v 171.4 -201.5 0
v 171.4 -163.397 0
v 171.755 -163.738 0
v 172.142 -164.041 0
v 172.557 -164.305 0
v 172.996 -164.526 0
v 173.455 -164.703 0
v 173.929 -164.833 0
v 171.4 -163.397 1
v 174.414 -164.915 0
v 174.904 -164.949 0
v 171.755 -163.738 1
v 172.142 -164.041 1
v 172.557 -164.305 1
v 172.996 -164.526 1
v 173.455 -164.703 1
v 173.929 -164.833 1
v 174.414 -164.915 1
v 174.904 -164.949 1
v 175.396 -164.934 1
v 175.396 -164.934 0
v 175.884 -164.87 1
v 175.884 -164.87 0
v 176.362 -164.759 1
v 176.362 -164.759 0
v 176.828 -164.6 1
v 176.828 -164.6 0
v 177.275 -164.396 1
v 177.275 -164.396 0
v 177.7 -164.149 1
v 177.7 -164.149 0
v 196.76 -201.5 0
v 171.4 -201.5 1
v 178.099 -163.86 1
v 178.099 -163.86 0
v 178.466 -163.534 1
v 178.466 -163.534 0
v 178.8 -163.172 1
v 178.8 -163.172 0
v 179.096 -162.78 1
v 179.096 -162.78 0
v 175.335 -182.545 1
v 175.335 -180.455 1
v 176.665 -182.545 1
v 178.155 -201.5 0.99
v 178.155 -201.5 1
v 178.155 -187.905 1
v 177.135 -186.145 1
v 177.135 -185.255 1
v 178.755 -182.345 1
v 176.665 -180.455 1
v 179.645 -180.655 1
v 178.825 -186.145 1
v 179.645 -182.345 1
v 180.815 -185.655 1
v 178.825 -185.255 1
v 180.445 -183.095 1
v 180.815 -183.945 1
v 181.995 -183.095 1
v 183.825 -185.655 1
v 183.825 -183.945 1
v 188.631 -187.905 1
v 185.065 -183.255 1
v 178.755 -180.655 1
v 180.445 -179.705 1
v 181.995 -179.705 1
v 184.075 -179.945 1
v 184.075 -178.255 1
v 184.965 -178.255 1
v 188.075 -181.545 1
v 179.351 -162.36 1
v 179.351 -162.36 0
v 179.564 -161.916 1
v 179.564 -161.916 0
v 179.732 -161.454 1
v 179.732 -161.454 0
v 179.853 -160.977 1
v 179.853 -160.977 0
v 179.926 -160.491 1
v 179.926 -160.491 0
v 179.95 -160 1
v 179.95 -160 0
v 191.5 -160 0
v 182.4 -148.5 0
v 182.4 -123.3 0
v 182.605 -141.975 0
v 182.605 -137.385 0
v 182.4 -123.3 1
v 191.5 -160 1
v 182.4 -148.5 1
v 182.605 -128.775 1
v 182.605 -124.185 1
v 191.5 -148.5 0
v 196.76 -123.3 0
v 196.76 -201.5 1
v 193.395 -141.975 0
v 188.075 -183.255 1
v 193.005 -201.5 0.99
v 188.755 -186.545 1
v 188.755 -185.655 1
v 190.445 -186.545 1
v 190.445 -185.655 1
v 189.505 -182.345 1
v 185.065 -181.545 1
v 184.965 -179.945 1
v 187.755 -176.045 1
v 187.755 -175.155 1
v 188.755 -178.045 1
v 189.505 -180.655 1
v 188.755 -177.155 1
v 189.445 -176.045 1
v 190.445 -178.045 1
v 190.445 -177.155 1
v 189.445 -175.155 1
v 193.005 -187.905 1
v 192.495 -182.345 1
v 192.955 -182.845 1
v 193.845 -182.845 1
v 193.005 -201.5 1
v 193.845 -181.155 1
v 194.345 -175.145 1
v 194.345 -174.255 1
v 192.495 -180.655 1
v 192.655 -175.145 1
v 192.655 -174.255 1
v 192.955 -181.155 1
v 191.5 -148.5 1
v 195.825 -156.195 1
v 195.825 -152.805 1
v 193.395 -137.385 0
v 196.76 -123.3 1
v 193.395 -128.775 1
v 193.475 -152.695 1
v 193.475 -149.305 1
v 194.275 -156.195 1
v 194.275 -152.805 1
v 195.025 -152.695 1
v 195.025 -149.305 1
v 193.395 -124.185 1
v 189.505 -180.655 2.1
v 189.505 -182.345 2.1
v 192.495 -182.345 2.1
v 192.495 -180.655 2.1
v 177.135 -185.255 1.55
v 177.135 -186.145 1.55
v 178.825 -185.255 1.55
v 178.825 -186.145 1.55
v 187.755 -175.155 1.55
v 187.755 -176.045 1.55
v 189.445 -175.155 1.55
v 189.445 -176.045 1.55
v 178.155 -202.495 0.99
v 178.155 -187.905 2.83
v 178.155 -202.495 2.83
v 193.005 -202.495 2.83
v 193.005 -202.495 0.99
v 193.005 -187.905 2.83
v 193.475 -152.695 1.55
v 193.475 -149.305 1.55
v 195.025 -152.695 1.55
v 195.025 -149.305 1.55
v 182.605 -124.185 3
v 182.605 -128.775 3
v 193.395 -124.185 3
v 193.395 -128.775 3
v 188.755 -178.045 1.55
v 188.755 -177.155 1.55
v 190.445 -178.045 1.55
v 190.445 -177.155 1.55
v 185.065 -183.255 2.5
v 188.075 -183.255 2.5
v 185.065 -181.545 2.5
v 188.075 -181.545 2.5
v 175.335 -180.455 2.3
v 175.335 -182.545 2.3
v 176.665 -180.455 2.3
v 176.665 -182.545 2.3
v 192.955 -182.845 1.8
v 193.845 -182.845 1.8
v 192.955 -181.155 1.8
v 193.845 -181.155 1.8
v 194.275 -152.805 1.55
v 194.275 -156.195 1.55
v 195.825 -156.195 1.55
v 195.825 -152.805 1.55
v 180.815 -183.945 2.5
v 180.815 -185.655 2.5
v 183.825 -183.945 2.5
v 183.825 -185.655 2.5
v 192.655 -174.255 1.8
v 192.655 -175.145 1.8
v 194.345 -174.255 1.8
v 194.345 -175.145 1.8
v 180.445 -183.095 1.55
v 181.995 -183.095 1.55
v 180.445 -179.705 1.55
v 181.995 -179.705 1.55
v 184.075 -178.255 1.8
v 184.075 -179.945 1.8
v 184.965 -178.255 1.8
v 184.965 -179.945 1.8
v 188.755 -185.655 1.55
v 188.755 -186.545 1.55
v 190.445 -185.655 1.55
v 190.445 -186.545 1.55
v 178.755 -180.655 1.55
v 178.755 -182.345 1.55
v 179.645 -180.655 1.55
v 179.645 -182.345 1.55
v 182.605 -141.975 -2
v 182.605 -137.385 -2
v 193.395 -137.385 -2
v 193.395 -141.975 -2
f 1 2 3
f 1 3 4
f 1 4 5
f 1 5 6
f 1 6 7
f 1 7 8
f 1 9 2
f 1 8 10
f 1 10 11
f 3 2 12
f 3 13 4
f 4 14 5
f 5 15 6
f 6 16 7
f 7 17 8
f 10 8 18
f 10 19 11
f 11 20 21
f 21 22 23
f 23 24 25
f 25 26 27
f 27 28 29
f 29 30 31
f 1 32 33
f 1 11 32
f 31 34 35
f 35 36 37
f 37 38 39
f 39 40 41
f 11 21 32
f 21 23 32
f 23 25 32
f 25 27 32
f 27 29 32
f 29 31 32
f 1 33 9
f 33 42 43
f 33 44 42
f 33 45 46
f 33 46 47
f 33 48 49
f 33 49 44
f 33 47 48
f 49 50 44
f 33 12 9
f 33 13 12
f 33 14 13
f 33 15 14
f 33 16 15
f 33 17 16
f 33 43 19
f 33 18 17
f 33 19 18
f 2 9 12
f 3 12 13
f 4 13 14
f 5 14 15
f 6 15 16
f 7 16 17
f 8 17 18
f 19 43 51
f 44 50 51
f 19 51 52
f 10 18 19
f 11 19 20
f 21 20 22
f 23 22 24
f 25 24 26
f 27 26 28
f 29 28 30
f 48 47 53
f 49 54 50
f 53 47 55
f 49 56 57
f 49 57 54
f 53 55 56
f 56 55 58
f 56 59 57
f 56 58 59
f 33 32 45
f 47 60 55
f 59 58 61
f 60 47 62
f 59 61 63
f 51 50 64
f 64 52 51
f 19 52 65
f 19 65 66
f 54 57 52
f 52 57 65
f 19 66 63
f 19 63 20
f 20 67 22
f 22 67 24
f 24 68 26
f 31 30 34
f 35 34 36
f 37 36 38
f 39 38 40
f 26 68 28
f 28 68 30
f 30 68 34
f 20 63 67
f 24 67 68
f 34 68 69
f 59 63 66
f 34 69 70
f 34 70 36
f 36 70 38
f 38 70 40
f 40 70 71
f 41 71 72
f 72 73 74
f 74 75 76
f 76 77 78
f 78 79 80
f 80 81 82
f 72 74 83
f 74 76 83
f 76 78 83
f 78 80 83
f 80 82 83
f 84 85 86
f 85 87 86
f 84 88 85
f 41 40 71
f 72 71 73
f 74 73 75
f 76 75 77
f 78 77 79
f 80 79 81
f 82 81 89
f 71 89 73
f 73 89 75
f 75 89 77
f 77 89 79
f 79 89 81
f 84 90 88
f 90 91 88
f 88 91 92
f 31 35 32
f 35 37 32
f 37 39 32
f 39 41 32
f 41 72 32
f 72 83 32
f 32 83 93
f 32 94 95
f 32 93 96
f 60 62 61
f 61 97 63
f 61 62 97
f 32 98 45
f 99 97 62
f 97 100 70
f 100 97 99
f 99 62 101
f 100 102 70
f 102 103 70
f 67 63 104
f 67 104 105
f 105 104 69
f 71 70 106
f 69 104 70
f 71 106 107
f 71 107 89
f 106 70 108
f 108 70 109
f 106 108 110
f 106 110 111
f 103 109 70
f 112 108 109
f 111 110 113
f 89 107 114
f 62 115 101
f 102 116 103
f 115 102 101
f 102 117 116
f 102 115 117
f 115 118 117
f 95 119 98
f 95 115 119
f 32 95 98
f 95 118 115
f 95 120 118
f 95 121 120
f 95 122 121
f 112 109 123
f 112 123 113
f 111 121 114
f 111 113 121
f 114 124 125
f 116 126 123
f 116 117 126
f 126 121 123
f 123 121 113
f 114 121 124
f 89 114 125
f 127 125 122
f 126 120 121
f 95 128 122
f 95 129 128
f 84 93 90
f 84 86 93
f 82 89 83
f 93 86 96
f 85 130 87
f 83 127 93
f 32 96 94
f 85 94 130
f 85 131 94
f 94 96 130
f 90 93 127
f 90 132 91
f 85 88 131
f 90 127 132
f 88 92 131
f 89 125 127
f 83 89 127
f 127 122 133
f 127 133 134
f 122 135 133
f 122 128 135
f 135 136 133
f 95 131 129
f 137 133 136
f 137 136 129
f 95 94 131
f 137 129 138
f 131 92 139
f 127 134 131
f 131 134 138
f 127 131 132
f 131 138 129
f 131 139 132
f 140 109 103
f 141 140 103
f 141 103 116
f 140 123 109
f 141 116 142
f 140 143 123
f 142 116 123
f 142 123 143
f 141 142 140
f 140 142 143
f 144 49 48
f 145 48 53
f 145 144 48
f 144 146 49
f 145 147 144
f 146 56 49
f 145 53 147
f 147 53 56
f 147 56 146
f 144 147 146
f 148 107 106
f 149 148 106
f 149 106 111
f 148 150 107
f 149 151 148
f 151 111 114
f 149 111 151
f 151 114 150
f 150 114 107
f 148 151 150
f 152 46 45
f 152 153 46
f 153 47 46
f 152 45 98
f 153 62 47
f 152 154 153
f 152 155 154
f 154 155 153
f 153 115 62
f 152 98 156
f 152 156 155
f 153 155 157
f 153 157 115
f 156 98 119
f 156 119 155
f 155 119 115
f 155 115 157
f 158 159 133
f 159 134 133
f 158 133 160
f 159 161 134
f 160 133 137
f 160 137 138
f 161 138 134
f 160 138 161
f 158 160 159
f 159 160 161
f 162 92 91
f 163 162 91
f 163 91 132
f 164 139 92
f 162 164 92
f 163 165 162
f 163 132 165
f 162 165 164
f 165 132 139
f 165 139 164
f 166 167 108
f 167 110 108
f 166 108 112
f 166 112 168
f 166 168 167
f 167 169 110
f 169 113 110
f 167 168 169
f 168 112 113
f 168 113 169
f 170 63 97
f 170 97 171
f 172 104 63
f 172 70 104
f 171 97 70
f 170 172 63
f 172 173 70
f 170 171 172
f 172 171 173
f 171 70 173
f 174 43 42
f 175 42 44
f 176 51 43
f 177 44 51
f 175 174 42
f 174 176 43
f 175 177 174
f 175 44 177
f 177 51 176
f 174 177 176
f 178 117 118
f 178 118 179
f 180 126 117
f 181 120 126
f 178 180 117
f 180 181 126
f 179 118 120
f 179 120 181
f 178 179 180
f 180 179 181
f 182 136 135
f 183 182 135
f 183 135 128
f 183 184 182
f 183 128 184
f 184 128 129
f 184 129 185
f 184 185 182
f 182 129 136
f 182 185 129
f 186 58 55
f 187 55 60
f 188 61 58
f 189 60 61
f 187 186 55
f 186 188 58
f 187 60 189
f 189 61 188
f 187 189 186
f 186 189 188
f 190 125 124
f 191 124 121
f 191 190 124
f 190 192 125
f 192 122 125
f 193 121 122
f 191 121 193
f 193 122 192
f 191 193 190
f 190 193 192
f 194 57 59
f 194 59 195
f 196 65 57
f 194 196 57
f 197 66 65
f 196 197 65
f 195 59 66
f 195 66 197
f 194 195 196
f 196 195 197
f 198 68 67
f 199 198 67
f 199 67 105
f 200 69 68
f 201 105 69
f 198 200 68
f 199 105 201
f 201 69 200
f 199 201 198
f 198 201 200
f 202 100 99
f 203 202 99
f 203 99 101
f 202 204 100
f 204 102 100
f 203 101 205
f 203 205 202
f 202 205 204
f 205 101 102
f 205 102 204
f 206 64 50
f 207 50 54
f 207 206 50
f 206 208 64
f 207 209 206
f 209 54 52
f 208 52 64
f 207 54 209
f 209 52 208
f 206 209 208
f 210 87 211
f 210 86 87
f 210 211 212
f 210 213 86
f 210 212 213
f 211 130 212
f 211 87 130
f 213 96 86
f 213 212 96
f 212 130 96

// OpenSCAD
// generated by make_mockup.py: the short SD board's outline and its parts as blocks
union() {
  linear_extrude(1.0) polygon([[196.76, -201.5], [171.4, -201.5], [171.4, -163.397], [171.755, -163.738], [172.142, -164.041], [172.557, -164.305], [172.996, -164.526], [173.455, -164.703], [173.929, -164.833], [174.414, -164.915], [174.904, -164.949], [175.396, -164.934], [175.884, -164.87], [176.362, -164.759], [176.828, -164.6], [177.275, -164.396], [177.7, -164.149], [178.099, -163.86], [178.466, -163.534], [178.8, -163.172], [179.096, -162.78], [179.351, -162.36], [179.564, -161.916], [179.732, -161.454], [179.853, -160.977], [179.926, -160.491], [179.95, -160.0], [191.5, -160.0], [191.5, -148.5], [182.4, -148.5], [182.4, -123.3], [196.76, -123.3]]);
  translate([189.505, -182.345, 0.990]) cube([2.990, 1.690, 1.11]);  // U1
  translate([177.135, -186.145, 0.990]) cube([1.690, 0.890, 0.56]);  // R3
  translate([187.755, -176.045, 0.990]) cube([1.690, 0.890, 0.56]);  // R8
  translate([178.155, -202.495, 0.990]) cube([14.850, 14.590, 1.84]);  // J1
  translate([193.475, -152.695, 0.990]) cube([1.550, 3.390, 0.56]);  // R5
  translate([182.605, -128.775, 0.990]) cube([10.790, 4.590, 2.01]);  // J3
  translate([188.755, -178.045, 0.990]) cube([1.690, 0.890, 0.56]);  // R4
  translate([185.065, -183.255, 0.990]) cube([3.010, 1.710, 1.51]);  // U2
  translate([175.335, -182.545, 0.990]) cube([1.330, 2.090, 1.31]);  // C1
  translate([192.955, -182.845, 0.990]) cube([0.890, 1.690, 0.81]);  // C2
  translate([194.275, -156.195, 0.990]) cube([1.550, 3.390, 0.56]);  // R6
  translate([180.815, -185.655, 0.990]) cube([3.010, 1.710, 1.51]);  // U3
  translate([192.655, -175.145, 0.990]) cube([1.690, 0.890, 0.81]);  // FB1
  translate([180.445, -183.095, 0.990]) cube([1.550, 3.390, 0.56]);  // R1
  translate([184.075, -179.945, 0.990]) cube([0.890, 1.690, 0.81]);  // C3
  translate([188.755, -186.545, 0.990]) cube([1.690, 0.890, 0.56]);  // R2
  translate([178.755, -182.345, 0.990]) cube([0.890, 1.690, 0.56]);  // R7
  translate([182.605, -141.975, -2.000]) cube([10.790, 4.590, 2.01]);  // J2
}
